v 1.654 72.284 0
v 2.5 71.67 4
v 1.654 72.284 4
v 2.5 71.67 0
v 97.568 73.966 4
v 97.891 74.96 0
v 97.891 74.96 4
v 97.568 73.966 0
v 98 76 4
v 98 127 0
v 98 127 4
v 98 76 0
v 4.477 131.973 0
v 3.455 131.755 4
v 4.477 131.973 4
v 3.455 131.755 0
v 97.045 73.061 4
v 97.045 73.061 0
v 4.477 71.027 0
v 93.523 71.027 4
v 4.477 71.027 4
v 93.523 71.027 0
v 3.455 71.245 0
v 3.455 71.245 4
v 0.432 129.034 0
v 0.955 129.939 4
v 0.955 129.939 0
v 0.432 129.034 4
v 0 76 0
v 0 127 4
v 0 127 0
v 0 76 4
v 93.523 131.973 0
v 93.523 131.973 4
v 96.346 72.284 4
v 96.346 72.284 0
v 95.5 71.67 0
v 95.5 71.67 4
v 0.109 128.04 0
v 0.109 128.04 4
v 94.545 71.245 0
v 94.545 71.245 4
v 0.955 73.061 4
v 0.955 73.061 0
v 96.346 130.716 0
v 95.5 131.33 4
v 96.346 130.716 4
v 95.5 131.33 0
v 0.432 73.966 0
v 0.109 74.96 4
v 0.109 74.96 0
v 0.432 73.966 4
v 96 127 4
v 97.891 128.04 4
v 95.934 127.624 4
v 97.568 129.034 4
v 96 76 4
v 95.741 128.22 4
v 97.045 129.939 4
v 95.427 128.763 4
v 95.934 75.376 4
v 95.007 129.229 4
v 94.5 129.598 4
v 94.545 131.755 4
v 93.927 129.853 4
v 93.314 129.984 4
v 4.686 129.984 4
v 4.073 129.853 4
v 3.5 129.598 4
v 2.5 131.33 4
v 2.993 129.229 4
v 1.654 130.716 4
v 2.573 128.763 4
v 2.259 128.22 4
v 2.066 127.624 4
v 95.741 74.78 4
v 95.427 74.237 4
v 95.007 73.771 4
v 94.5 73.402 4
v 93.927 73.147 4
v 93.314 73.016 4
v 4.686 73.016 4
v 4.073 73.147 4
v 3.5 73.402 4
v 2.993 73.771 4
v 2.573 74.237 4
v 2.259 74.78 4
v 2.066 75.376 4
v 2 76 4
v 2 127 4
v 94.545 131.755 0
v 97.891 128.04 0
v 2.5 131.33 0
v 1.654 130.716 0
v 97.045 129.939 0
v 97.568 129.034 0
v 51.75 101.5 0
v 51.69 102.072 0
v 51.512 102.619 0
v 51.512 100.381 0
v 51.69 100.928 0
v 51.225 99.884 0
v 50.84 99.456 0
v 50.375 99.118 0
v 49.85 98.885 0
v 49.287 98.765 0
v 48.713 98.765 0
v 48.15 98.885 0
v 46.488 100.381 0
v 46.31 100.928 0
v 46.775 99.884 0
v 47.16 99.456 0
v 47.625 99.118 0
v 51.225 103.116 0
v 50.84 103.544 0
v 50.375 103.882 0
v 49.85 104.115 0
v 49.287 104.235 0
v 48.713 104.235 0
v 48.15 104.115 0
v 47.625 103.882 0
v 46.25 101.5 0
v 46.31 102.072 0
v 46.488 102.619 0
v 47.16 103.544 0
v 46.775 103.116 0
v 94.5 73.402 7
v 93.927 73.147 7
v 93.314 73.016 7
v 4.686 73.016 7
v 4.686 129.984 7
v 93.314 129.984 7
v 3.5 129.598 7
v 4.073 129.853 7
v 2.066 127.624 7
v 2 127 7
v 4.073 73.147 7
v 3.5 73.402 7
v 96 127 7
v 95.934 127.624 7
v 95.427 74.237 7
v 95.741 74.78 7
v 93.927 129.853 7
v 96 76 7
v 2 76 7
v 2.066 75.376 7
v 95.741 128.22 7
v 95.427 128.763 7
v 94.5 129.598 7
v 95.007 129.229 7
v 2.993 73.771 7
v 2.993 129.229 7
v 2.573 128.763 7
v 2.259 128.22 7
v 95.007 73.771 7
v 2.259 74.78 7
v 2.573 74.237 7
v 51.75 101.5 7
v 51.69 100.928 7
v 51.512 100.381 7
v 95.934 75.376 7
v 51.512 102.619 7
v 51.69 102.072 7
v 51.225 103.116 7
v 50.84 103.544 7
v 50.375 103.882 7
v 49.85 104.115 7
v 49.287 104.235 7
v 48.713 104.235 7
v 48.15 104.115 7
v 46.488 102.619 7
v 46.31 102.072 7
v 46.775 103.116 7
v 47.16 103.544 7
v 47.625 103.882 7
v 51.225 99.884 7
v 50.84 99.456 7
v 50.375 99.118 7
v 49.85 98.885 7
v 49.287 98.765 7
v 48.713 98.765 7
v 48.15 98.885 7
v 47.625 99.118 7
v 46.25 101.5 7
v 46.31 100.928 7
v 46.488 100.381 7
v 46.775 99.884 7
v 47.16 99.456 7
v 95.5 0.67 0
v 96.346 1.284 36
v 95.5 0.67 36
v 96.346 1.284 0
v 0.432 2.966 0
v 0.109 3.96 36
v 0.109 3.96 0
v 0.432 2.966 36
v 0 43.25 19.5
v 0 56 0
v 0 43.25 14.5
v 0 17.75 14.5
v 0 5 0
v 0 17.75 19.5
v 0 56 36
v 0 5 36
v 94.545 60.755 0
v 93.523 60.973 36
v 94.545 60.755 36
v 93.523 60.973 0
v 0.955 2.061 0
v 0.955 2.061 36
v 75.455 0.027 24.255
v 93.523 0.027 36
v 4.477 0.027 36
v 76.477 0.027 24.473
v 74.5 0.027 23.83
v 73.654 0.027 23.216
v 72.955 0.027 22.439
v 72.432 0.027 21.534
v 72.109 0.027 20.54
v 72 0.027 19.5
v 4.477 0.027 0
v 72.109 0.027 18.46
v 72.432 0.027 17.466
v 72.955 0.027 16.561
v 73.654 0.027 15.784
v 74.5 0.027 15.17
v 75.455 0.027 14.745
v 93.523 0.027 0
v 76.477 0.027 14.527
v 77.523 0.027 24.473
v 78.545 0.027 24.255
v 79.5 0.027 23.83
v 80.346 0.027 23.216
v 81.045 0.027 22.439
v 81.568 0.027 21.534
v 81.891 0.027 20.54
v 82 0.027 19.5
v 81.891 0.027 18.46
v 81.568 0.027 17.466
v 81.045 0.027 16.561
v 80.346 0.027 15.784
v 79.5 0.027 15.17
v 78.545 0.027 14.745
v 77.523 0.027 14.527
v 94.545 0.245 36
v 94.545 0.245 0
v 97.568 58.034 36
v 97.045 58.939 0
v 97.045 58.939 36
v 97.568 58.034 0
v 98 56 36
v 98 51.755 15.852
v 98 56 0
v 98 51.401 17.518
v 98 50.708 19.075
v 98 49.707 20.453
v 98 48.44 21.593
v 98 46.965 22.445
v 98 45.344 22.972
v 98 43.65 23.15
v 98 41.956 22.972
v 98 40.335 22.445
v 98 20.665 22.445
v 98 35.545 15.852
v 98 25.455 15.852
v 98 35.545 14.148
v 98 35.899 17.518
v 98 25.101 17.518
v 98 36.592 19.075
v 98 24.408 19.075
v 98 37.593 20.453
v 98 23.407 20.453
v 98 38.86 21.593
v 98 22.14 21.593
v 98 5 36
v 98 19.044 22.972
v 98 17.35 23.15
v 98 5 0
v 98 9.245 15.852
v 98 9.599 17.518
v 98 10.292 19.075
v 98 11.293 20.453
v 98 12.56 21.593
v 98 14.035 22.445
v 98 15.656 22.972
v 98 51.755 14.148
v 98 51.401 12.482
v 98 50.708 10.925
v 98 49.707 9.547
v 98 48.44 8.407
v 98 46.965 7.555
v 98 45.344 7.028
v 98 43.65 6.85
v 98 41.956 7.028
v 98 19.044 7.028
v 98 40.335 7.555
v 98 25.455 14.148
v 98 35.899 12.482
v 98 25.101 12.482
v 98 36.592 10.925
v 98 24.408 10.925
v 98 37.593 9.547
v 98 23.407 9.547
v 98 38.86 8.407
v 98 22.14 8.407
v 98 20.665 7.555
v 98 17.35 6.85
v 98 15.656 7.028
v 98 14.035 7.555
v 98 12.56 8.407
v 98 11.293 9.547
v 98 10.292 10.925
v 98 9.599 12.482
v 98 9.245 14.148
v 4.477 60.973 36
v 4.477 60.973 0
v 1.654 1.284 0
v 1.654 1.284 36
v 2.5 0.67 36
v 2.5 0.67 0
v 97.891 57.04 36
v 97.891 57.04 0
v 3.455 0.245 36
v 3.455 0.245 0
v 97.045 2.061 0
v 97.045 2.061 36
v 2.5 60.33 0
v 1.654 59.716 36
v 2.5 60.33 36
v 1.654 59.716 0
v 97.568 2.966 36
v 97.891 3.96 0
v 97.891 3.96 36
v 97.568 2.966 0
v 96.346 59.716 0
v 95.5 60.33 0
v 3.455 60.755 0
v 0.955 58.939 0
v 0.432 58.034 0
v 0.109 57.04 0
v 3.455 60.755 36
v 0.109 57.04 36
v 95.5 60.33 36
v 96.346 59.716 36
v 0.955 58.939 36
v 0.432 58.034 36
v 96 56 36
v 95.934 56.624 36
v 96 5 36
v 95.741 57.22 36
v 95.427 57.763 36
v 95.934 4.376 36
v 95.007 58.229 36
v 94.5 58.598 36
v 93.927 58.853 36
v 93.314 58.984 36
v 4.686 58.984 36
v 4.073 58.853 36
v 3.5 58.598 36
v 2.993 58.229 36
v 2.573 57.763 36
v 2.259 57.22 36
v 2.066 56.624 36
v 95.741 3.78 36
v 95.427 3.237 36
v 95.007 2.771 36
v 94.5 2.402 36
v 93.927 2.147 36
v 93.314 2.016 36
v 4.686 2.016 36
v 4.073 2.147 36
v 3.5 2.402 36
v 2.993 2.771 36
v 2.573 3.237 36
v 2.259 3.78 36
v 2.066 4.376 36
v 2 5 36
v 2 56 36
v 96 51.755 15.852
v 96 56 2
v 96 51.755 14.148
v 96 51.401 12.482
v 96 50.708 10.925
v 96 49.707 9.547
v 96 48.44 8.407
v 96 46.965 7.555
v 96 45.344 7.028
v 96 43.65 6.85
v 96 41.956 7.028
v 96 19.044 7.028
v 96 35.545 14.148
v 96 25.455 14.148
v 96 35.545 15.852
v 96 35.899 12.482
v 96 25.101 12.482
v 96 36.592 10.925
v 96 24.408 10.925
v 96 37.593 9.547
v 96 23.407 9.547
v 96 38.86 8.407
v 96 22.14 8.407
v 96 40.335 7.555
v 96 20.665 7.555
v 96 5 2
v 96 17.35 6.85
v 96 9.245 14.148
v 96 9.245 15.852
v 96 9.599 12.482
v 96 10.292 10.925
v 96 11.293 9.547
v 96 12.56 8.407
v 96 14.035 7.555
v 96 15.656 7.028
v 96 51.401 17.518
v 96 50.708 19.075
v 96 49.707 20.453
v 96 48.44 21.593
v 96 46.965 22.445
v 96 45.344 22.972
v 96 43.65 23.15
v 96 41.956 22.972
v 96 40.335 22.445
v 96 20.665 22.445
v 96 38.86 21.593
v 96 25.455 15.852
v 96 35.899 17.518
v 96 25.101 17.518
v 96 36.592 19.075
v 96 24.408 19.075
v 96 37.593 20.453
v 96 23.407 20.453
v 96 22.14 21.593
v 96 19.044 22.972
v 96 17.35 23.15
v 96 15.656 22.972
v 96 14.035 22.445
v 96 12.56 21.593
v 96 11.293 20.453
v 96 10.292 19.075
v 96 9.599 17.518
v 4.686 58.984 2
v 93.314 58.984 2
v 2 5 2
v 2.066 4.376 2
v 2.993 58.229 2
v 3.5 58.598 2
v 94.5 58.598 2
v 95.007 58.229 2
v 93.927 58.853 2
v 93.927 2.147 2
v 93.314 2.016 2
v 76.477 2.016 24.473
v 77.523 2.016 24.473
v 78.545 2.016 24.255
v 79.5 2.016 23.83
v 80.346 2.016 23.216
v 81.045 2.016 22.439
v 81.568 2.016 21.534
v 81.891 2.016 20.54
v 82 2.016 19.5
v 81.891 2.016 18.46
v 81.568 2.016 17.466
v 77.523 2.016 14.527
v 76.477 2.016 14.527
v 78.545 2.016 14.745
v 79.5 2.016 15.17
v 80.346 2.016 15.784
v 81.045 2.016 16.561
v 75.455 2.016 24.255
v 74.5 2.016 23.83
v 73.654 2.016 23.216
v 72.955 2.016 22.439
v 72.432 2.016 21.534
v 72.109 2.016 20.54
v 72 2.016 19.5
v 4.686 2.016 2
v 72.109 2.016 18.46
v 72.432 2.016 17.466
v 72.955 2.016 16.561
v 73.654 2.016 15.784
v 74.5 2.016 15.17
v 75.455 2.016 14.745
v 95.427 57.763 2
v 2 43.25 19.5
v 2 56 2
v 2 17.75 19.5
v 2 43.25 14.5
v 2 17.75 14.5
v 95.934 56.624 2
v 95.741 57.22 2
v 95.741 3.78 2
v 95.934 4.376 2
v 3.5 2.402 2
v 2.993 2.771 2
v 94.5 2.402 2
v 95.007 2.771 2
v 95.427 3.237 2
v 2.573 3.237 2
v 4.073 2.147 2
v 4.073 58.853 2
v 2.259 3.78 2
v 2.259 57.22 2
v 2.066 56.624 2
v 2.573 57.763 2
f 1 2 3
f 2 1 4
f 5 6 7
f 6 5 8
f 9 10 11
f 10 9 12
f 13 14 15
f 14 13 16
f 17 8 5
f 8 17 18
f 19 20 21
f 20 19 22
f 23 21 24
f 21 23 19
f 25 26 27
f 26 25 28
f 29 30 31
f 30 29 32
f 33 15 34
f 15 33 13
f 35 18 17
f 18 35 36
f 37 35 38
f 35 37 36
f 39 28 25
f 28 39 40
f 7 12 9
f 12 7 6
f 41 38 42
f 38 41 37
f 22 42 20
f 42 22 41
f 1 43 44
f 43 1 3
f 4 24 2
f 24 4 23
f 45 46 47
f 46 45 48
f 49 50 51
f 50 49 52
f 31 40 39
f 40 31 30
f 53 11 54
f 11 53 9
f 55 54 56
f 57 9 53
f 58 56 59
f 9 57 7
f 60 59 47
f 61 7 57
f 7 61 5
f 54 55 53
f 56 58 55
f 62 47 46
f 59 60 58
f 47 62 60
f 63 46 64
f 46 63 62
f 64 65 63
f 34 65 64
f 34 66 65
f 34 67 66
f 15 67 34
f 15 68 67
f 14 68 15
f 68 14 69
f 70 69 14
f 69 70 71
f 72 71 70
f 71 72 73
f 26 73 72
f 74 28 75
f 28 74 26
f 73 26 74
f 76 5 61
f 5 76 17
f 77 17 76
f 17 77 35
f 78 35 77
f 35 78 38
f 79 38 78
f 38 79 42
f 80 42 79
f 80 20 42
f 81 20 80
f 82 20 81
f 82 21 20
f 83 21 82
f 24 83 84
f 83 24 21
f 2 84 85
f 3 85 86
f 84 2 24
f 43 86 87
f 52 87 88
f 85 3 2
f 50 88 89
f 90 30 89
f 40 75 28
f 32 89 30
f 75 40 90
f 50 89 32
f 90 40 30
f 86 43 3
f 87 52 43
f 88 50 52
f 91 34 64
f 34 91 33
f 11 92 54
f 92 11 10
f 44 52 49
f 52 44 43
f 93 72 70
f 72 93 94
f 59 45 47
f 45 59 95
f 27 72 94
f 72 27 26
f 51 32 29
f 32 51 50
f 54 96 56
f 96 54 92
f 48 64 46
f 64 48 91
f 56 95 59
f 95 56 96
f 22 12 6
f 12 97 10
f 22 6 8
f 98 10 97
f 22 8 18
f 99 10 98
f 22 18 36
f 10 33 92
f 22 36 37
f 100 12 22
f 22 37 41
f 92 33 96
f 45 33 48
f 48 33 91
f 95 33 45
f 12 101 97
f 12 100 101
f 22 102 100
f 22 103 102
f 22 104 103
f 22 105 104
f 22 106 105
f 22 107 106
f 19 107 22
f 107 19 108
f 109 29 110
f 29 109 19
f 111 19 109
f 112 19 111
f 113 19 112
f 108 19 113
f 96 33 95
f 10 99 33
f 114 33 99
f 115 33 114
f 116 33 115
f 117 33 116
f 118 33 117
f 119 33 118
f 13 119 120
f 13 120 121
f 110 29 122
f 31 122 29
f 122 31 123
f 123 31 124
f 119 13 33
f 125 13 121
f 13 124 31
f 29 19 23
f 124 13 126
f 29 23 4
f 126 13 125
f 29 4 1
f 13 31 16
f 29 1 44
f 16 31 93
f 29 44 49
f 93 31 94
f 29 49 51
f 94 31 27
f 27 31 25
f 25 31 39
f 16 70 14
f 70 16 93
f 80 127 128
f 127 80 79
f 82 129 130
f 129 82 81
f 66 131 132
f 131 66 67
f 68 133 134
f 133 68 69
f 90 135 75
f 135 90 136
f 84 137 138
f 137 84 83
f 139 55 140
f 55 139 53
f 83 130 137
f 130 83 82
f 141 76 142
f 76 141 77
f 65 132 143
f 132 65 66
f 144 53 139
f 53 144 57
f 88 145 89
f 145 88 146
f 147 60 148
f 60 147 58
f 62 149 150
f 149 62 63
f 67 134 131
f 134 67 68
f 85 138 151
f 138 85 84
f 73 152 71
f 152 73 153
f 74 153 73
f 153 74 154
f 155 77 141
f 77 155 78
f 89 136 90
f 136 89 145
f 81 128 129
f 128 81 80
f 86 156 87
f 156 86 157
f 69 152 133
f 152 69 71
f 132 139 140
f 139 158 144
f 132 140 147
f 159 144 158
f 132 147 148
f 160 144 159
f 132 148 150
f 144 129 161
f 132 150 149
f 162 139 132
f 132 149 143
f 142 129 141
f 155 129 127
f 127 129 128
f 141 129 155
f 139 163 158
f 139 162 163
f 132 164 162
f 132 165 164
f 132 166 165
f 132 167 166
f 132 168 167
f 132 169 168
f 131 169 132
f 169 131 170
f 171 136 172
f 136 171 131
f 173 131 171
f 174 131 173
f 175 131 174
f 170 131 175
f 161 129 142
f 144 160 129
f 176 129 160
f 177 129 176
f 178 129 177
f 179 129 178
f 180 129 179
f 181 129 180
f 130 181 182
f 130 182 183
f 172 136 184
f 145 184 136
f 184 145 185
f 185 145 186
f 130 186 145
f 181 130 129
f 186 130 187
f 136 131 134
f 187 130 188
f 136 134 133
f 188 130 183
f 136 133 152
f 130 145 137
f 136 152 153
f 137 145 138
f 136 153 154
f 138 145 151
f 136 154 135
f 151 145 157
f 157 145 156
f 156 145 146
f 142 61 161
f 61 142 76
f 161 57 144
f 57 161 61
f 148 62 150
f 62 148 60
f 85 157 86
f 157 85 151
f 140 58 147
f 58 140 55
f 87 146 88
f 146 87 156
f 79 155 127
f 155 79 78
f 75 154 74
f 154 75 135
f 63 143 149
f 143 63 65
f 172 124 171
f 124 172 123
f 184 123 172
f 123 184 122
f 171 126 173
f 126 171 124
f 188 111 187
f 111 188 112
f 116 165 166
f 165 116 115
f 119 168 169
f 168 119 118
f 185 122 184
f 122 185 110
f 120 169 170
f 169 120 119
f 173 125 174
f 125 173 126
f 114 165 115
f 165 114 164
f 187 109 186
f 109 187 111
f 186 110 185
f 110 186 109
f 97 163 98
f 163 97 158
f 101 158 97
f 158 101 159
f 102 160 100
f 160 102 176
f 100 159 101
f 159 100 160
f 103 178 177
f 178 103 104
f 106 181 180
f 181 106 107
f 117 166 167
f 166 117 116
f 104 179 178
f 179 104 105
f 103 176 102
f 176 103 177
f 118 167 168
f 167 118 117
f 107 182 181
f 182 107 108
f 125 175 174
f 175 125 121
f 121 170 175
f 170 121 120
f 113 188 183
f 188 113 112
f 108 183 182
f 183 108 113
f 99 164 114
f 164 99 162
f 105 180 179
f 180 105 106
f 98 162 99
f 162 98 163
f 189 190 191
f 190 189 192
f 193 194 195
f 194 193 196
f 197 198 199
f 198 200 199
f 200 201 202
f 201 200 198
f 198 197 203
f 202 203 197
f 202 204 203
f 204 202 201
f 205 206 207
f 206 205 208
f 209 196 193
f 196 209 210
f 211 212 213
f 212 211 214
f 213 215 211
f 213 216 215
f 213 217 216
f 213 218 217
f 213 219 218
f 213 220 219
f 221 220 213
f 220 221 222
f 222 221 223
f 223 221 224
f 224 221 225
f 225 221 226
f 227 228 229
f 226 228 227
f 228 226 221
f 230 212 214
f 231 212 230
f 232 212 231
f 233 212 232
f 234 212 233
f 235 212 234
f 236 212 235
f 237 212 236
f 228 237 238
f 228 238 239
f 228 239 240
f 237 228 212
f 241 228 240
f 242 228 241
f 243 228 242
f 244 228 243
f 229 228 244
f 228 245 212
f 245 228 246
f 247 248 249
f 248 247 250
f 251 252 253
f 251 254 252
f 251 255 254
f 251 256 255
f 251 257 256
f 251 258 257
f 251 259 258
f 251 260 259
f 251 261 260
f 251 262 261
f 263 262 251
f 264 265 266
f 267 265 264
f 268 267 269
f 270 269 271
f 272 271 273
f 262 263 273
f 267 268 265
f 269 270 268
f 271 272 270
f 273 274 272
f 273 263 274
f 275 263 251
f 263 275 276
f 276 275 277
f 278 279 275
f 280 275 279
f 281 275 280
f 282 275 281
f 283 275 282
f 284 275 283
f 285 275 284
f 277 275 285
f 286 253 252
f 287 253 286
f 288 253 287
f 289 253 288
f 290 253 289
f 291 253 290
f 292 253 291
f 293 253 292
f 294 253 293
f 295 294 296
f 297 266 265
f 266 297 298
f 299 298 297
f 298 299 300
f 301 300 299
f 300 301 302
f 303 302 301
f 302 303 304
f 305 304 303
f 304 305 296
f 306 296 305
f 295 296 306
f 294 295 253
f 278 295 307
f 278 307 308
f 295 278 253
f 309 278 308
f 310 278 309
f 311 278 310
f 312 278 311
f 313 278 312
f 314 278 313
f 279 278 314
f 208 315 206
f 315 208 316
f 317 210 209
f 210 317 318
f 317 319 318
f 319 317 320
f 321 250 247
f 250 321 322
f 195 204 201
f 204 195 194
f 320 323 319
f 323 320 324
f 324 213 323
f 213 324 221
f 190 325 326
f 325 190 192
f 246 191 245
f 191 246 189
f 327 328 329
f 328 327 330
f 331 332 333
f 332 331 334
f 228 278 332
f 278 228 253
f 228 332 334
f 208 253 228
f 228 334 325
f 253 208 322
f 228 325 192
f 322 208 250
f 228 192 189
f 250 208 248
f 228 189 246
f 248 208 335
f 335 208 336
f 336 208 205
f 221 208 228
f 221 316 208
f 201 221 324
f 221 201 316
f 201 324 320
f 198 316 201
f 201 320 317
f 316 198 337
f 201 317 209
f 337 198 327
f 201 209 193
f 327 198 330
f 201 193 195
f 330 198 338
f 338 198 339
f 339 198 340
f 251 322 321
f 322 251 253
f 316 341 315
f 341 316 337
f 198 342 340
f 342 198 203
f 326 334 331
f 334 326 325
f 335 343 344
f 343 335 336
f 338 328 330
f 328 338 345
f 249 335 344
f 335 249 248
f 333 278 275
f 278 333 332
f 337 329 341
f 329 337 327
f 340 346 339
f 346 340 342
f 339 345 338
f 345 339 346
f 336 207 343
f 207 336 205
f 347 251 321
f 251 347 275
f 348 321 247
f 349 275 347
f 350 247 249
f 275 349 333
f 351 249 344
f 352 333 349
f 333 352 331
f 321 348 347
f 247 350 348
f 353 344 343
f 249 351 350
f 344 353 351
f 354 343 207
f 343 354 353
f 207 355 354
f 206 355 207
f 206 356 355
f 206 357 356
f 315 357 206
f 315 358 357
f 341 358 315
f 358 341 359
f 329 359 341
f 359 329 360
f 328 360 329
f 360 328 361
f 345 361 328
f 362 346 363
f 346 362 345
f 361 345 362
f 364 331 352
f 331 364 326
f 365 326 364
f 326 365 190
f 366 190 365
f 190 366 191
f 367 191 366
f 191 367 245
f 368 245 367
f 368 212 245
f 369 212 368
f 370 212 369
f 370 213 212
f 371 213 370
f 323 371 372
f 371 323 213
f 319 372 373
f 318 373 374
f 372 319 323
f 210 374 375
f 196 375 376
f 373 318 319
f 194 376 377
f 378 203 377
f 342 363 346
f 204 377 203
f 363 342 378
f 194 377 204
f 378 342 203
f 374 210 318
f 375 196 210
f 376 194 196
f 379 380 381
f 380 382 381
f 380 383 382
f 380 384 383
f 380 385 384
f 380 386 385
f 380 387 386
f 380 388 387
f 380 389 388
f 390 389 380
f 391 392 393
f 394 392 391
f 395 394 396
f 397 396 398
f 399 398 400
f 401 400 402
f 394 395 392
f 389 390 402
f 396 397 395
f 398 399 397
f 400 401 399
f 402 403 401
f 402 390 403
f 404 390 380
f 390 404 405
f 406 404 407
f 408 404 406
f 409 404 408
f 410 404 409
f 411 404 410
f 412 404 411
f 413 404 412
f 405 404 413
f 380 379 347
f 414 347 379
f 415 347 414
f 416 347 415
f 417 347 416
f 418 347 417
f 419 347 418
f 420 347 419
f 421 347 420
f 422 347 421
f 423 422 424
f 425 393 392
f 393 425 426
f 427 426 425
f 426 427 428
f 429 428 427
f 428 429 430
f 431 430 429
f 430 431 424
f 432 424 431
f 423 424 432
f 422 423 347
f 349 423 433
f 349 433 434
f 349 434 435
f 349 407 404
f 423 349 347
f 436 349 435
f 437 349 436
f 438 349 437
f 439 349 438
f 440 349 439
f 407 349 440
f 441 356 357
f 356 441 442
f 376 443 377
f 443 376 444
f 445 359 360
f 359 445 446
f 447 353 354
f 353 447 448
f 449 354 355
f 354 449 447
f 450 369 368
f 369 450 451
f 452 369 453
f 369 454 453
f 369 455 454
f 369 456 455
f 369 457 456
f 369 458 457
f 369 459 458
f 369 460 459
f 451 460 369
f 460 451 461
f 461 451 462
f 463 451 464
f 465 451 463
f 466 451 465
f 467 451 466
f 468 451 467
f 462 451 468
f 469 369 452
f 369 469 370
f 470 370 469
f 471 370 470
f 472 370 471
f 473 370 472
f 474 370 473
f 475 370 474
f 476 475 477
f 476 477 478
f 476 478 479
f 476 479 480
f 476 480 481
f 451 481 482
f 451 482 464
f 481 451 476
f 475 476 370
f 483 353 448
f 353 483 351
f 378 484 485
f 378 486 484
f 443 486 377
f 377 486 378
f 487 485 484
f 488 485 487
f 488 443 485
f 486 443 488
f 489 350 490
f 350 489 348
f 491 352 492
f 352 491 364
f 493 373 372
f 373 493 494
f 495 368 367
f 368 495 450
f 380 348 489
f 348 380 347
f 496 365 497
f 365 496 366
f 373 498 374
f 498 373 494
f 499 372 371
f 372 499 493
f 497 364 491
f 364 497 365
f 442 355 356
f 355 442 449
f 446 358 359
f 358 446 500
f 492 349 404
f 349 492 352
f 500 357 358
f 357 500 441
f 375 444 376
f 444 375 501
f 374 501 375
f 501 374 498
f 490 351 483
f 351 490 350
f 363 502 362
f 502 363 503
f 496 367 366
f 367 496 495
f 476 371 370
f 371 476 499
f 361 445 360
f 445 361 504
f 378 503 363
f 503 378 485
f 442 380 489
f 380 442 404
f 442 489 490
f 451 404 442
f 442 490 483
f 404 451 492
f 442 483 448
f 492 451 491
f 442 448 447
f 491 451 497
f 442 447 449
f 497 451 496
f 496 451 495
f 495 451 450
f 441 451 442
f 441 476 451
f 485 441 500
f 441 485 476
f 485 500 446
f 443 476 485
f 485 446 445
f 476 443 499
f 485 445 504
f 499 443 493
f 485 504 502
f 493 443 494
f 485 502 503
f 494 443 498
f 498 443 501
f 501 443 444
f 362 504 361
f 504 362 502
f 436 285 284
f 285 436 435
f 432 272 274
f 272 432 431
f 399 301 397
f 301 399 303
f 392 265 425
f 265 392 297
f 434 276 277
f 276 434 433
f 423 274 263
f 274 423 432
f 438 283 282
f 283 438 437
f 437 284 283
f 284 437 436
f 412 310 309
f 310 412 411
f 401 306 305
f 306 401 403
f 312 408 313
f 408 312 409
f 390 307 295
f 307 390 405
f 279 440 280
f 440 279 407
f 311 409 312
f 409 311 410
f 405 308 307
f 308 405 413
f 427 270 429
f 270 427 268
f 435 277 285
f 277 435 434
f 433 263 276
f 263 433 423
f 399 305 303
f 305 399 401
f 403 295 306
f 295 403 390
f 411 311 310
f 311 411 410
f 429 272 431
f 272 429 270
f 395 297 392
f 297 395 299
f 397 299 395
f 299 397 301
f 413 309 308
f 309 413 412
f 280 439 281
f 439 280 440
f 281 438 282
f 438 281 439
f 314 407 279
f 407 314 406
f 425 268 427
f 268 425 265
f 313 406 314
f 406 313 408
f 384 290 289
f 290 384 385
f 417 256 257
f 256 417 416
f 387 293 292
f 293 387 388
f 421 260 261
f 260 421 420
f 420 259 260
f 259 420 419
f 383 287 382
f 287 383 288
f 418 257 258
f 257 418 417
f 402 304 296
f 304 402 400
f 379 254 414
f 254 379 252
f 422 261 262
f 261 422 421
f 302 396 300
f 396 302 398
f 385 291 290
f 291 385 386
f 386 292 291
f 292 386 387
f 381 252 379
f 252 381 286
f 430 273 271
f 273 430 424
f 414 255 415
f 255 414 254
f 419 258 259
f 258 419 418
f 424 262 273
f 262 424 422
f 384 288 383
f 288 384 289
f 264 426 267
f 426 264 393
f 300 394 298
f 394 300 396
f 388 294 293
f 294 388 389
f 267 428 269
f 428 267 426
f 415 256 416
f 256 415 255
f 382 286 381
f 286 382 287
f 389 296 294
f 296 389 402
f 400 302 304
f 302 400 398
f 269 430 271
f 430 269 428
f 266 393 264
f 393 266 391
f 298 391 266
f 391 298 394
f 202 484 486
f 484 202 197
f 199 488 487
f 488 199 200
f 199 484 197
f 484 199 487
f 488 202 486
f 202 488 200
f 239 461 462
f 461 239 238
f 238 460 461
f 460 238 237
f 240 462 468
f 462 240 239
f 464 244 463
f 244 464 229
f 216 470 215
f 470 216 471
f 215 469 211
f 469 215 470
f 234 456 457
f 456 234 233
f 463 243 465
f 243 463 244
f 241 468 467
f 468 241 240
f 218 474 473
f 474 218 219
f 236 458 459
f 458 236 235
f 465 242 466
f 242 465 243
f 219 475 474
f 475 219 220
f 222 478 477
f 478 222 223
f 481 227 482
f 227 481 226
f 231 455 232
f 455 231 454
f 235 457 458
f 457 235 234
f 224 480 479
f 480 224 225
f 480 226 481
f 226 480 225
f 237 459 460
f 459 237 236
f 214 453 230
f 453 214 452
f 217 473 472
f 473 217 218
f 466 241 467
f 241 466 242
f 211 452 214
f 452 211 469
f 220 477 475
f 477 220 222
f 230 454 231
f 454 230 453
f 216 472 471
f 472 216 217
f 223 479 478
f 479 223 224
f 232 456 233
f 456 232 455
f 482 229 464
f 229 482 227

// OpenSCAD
$fn = 30;

box_length = 100 -2;    
box_width = 65 - 4;  
box_height = 40 - 4; 
wall_thickness = 2;  // 0.2 cm

// Corner rounding
outer_radius = 5;
inner_radius = 3;

// Cover parameters
cover_thickness = 4;
lip_height = 3;
lip_clearance = 0.2;

/* Ultrasonic sensor two holes */
sensor_hole_diameter = 16 + 0.3;
sensor_hole_radius = sensor_hole_diameter / 2;
edge_to_edge_gap = 10;  
sensor_hole_spacing = sensor_hole_diameter + edge_to_edge_gap; 
sensor_hole_height = 15; 

// Cover hole parameters
sensor_protrusion_diameter = 5.5; // 5.5mm hole for 4.2×3.5mm rounded rectangle
sensor_protrusion_radius = sensor_protrusion_diameter/2;

// Back strip parameters
sensor_strip_z = 15 - 0.5;       
sensor_strip_height = 5;         
sensor_strip_length = 25.5; 

/* Sound sensor hole */
left_hole_diameter = 9.7 + 0.3;                  
left_hole_radius = left_hole_diameter/2;
left_hole_x = box_length - 21;              // Center horizontally
left_hole_z = box_height - 30 + 9.5 + 4;    // Center vertically

module rounded_rect(x, y, z, r) {
    hull() {
        translate([r, r, 0]) cylinder(r=r, h=z);
        translate([x - r, r, 0]) cylinder(r=r, h=z);
        translate([r, y - r, 0]) cylinder(r=r, h=z);
        translate([x - r, y - r, 0]) cylinder(r=r, h=z);
    }
}

module base() {
    difference() {
        // Outer shell
        rounded_rect(box_length, box_width, box_height, outer_radius);
        
        // Inner cavity
        translate([wall_thickness, wall_thickness, wall_thickness]) 
        rounded_rect(
            box_length - 2*wall_thickness, 
            box_width - 2*wall_thickness, 
            box_height - wall_thickness + 0.1,
            inner_radius
        );
        
        // Top recess
        translate([2*wall_thickness, 2*wall_thickness, box_height - lip_height]) 
        rounded_rect(
            box_length - 4*wall_thickness, 
            box_width - 4*wall_thickness, 
            lip_height + 0.1,
            inner_radius - 1
        );
        
        // Front sensor holes
        translate([box_length, (box_width/2) - (sensor_hole_spacing/2), sensor_hole_height])
        rotate([0, -90, 0])
        cylinder(r=sensor_hole_radius, h=wall_thickness + 0.02);
        
        translate([box_length, (box_width/2) + (sensor_hole_spacing/2), sensor_hole_height])
        rotate([0, -90, 0])
        cylinder(r=sensor_hole_radius, h=wall_thickness + 0.02);
        
        // Back face ventilation strip
        translate([-0.01, (box_width - sensor_strip_length)/2, sensor_strip_z])
        cube([wall_thickness + 0.02, sensor_strip_length, sensor_strip_height]);
        
        translate([left_hole_x, 0.01, left_hole_z])
        rotate([-90, 0, 0])
        cylinder(r=left_hole_radius, h=wall_thickness + 0.02);
    }
}

module cover() {
    difference() {
        union() {
            rounded_rect(box_length, box_width, cover_thickness, outer_radius);
            
            translate([wall_thickness, wall_thickness, -lip_height]) 
            rounded_rect(
                box_length - 2*wall_thickness,
                box_width - 2*wall_thickness,   
                lip_height + 0.2,              
                inner_radius     
            );
        }
        
        translate([
            box_length/2,
            box_width/2,
            -lip_height - 0.01
        ])
        cylinder(
            d = sensor_protrusion_diameter,
            h = cover_thickness + lip_height + 0.1
        );
    }
}

// Visualization
base();
translate([box_length, box_width + 10, cover_thickness]) 
rotate([0, 180, 0]) 
cover();
